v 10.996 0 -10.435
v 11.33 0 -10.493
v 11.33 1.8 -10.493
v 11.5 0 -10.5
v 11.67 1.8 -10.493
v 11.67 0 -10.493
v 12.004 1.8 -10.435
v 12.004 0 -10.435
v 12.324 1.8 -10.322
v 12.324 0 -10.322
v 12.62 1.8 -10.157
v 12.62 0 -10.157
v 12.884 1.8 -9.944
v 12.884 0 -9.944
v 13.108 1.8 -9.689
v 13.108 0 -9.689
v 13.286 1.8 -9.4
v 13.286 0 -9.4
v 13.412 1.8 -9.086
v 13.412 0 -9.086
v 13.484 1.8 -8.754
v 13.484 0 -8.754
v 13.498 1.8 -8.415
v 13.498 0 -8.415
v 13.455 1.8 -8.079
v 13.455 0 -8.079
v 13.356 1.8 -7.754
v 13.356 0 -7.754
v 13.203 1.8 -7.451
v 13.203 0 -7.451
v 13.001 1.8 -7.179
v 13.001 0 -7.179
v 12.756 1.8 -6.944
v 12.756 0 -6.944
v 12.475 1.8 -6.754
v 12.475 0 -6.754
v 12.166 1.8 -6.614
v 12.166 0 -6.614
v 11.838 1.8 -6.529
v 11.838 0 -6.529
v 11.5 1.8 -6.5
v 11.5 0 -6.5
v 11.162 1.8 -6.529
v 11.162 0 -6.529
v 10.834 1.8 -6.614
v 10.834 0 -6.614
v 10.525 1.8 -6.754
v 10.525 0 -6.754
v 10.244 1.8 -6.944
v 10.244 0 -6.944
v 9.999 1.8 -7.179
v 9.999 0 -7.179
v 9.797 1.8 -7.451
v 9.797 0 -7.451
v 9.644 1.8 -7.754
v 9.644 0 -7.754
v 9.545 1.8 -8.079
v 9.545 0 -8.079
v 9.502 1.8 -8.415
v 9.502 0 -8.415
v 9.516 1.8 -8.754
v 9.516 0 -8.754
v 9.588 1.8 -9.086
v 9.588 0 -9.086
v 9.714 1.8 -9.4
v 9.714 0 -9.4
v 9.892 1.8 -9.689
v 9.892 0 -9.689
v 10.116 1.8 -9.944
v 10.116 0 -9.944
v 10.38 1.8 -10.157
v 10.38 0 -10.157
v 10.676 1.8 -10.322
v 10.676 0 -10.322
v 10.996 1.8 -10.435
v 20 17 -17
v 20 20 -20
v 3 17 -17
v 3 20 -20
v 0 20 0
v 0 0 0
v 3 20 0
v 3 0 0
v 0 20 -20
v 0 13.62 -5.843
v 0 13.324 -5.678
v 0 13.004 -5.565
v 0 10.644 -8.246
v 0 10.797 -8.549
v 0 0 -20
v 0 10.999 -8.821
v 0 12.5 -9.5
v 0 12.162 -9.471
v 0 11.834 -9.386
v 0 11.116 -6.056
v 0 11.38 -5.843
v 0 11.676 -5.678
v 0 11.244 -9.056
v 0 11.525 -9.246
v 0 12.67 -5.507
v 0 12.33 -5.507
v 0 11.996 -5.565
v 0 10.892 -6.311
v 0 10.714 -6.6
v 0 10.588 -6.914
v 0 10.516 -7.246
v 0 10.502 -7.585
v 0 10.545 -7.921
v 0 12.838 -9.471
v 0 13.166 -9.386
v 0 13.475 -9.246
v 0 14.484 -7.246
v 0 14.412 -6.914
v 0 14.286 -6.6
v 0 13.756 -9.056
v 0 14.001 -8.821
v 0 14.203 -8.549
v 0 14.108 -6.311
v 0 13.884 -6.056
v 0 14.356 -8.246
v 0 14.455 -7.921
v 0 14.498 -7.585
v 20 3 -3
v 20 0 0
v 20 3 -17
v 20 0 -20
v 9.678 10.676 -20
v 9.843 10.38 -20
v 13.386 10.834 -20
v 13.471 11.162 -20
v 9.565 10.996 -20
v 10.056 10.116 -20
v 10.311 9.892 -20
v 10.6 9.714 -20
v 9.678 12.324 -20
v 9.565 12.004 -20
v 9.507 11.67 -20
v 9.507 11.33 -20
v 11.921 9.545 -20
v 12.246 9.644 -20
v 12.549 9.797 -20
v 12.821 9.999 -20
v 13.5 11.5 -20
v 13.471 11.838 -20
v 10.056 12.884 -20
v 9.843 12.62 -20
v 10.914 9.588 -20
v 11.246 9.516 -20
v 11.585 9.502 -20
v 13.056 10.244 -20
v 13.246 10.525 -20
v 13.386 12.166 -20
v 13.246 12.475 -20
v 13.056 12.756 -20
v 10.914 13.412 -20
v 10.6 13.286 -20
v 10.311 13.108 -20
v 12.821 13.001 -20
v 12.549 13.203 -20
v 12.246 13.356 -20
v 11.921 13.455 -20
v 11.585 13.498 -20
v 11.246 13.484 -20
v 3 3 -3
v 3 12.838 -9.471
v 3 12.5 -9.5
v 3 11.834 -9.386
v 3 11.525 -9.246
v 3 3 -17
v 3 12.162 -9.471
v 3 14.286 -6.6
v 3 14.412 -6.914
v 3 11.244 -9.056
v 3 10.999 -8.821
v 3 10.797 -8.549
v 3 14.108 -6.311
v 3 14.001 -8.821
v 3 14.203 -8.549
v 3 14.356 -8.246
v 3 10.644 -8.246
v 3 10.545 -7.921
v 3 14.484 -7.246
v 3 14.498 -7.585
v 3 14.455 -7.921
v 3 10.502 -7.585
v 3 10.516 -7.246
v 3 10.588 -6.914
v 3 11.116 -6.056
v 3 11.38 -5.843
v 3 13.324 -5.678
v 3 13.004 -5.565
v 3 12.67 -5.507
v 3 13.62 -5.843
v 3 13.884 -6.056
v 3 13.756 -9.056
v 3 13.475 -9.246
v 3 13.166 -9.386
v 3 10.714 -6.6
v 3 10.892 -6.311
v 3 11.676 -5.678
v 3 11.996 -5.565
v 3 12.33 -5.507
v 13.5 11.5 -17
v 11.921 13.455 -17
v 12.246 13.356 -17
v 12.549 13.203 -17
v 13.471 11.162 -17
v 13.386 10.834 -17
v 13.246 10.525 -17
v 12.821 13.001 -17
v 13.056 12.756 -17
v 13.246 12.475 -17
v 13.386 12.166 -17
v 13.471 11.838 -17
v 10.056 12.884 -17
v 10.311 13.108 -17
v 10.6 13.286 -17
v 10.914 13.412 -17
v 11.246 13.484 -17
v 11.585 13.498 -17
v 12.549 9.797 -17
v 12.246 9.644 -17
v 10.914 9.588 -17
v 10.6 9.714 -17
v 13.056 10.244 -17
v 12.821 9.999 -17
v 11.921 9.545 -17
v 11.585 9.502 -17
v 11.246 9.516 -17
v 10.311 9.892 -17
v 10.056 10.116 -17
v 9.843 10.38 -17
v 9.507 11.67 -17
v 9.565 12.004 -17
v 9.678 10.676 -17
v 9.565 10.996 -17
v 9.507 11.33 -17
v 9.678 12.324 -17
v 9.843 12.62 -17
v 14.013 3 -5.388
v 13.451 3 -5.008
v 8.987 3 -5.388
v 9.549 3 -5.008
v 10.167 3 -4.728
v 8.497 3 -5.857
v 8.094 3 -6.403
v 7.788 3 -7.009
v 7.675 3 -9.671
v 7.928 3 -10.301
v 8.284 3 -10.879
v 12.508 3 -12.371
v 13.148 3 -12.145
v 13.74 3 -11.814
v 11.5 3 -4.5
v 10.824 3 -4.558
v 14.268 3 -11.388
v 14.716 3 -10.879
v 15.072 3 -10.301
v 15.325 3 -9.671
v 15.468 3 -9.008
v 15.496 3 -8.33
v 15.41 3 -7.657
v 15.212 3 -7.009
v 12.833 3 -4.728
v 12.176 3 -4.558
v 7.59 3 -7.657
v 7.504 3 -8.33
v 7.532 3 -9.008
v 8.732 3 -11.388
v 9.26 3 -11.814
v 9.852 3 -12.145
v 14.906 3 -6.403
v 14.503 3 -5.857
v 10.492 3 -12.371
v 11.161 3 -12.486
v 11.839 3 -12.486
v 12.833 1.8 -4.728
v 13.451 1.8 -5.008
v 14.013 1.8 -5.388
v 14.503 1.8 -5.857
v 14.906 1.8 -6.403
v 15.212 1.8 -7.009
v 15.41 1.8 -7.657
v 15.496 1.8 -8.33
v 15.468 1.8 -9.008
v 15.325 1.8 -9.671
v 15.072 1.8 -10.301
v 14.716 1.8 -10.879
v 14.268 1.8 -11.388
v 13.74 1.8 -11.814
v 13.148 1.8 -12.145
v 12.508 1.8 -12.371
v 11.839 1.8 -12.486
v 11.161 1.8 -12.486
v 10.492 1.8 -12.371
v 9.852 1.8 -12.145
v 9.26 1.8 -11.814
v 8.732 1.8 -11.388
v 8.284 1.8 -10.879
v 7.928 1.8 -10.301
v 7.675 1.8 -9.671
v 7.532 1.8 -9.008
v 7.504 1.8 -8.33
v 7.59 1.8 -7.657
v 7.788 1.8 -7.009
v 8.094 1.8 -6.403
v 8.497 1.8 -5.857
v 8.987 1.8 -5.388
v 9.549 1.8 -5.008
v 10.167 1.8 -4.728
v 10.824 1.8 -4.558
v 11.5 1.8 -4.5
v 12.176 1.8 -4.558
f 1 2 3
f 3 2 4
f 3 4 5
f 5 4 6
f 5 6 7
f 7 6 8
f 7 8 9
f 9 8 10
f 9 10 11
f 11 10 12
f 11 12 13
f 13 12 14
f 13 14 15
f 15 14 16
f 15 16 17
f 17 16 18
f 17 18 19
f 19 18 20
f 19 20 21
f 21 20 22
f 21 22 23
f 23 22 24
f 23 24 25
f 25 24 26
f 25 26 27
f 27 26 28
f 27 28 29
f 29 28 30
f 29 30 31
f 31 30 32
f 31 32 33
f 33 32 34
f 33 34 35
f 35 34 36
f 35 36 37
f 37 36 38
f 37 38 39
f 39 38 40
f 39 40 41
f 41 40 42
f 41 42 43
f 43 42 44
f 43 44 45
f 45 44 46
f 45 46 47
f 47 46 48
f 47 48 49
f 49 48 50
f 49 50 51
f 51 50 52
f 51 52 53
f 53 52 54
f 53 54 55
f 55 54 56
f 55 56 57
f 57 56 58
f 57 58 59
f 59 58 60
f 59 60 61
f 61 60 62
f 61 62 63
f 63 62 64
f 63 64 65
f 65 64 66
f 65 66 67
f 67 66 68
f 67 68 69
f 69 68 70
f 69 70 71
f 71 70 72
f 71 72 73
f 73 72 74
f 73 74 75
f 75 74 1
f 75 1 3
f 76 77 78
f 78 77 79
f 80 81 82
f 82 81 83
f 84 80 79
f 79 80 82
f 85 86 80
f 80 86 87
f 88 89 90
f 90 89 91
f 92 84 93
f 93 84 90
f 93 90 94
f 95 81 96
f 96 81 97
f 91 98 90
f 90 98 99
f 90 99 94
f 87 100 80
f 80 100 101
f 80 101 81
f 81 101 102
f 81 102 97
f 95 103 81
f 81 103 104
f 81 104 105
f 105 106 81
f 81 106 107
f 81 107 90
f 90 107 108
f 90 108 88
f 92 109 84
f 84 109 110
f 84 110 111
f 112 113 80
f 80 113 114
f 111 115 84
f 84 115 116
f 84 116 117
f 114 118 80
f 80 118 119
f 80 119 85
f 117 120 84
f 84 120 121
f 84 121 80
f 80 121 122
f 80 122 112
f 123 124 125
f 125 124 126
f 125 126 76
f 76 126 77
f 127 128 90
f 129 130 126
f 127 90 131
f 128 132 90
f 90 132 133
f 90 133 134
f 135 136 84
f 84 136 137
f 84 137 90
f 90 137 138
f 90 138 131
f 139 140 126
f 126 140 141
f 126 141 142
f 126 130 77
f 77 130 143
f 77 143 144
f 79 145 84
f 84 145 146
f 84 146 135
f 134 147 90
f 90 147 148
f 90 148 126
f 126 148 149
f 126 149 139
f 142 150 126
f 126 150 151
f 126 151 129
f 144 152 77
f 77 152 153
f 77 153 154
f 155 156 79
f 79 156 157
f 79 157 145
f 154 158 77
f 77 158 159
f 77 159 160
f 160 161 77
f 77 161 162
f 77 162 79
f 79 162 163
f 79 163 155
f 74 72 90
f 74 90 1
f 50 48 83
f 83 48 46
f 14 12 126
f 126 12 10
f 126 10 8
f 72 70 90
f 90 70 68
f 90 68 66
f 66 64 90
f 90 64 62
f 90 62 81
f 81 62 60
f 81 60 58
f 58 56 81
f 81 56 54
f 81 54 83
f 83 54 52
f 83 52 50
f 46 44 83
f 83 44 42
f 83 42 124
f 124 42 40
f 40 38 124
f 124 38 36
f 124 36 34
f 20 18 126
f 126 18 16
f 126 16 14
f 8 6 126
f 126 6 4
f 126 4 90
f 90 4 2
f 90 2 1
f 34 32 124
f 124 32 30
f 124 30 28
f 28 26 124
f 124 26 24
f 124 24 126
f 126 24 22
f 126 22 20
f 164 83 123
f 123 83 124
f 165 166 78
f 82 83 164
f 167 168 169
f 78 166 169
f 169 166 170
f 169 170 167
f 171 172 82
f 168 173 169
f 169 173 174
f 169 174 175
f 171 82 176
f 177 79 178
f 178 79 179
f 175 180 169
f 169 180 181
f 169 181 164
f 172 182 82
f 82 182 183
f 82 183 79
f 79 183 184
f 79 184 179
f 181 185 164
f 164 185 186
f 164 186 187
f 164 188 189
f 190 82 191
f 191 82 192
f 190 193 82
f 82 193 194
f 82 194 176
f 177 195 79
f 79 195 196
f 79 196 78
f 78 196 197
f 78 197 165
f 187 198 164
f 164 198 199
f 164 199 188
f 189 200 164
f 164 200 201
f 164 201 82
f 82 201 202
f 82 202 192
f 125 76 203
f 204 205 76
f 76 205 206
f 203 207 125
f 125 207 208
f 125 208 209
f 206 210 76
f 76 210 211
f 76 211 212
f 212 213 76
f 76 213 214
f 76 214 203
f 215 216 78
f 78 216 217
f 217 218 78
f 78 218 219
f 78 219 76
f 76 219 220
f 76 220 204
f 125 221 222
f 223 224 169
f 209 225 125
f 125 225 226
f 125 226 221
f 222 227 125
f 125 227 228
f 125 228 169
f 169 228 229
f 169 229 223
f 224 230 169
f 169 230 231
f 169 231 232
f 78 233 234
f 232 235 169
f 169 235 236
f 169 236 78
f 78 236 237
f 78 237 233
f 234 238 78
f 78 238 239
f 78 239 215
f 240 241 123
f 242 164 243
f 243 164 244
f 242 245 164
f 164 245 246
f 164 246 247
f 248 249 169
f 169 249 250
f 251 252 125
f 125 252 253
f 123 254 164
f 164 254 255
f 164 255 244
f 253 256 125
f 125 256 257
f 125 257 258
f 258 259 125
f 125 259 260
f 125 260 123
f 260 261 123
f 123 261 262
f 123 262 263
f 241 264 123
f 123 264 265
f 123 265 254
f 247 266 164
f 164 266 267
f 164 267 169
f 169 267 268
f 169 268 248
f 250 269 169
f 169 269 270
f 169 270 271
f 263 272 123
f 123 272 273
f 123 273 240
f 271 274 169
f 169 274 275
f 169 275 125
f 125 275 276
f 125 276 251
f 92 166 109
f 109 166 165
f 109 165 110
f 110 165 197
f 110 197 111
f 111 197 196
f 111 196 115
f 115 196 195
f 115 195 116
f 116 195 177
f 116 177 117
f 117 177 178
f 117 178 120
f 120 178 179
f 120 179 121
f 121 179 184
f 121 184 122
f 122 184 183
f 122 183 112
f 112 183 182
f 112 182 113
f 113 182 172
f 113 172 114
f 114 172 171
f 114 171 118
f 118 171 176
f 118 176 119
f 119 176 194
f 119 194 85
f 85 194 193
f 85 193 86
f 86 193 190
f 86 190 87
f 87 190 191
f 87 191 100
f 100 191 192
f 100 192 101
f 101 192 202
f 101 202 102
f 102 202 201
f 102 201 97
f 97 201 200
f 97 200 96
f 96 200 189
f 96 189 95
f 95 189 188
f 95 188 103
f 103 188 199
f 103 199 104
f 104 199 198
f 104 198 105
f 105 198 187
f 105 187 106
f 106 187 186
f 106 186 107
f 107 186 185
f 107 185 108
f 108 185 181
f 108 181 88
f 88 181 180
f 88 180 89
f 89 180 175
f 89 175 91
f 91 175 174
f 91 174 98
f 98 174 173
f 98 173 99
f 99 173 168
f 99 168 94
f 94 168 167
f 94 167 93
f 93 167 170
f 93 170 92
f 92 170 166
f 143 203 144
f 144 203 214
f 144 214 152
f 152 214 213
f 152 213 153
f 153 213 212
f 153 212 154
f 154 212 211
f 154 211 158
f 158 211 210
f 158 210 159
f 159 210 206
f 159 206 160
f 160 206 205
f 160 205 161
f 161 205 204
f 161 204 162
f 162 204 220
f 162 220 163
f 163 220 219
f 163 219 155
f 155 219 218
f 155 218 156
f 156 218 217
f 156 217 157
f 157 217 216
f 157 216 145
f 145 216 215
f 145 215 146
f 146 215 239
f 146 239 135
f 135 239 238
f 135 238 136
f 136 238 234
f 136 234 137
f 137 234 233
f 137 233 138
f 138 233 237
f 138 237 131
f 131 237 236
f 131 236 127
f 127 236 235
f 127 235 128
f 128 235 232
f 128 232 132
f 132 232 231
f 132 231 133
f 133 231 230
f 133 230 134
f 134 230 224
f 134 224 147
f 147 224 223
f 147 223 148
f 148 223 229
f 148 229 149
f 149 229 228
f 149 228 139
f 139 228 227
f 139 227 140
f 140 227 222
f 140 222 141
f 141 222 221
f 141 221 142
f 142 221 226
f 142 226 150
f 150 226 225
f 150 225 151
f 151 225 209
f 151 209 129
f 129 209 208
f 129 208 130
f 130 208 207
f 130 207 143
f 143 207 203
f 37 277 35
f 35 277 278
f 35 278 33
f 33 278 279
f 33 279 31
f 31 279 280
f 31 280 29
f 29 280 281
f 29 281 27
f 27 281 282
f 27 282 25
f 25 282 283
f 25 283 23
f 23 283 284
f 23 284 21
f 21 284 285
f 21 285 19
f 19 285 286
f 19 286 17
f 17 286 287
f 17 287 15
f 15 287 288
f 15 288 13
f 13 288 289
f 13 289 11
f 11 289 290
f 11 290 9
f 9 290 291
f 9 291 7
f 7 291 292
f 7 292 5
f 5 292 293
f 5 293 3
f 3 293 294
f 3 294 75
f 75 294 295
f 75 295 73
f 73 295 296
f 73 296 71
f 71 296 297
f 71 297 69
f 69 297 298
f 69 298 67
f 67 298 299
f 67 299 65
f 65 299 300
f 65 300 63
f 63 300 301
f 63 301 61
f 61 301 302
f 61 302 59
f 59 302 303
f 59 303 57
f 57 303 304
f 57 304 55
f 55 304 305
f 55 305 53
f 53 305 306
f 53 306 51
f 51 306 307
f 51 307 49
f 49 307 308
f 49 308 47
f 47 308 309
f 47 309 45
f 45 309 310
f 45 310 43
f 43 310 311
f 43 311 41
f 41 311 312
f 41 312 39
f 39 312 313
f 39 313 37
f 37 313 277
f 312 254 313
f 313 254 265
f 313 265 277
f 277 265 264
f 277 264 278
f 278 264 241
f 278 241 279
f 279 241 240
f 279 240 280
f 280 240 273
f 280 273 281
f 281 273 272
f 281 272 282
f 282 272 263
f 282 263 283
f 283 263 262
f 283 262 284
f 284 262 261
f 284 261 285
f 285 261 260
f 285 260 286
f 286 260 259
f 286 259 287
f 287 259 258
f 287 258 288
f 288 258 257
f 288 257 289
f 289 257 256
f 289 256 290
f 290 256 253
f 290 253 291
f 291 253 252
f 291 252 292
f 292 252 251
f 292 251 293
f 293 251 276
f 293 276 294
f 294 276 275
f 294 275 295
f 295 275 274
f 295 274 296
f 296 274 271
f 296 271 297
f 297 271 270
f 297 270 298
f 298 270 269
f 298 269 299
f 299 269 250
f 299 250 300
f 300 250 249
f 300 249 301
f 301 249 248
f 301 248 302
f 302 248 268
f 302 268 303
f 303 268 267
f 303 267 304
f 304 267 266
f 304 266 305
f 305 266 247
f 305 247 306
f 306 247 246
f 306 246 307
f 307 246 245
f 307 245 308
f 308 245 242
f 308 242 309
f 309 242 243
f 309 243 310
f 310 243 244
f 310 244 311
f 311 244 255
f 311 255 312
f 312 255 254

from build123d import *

# Parameters (mm, degrees)
IZIM1_W                     = 20
IZIM1_H                     = 20
Y_KSEKLIK_EKSTR_ZYON1_DEPTH = 20
KES_EKSTR_ZYON1_DEPTH       = 17
IZIM3_W                     = 17.326301073
IZIM3_H                     = 17.919650739
KES_EKSTR_ZYON2_DEPTH       = 17
IZIM6_R                     = 2
KES_EKSTR_ZYON3_DEPTH       = 17
IZIM7_R                     = 2
KES_EKSTR_ZYON4_DEPTH       = 17
IZIM5_R                     = 2
KES_EKSTR_ZYON5_DEPTH       = 17
IZIM8_R                     = 4
KES_EKSTR_ZYON6_DEPTH       = 1.2


with BuildPart() as part:
    # Çizim1 → Yükseklik-Ekstrüzyon1 (new body)
    with BuildSketch(Plane(origin=(0, 0, 0), x_dir=(1, 0, 0), z_dir=(0, 1, 0))):
        with Locations((10, 10)):
            Rectangle(IZIM1_W, IZIM1_H)
    extrude(amount=Y_KSEKLIK_EKSTR_ZYON1_DEPTH)

    # Çizim2 → Kes-Ekstrüzyon1 (cut)
    with BuildSketch(Plane(origin=(20, 0, 0), x_dir=(0, 0, -1), z_dir=(1, 0, 0))):
        Polygon((20, 20), (0, 0), (0, 20), align=None)
    extrude(amount=-KES_EKSTR_ZYON1_DEPTH, mode=Mode.SUBTRACT)

    # Çizim3 → Kes-Ekstrüzyon2 (cut)
    with BuildSketch(Plane(origin=(20, 0, 0), x_dir=(0, 0, -1), z_dir=(1, 0, 0))):
        with Locations((8.336849464, 11.95982537)):
            Rectangle(IZIM3_W, IZIM3_H)
    extrude(amount=-KES_EKSTR_ZYON2_DEPTH, mode=Mode.SUBTRACT)

    # Çizim6 → Kes-Ekstrüzyon3 (cut)
    with BuildSketch(Plane(origin=(3, 0, 0), x_dir=(0, 0, -1), z_dir=(1, 0, 0))):
        with Locations((7.5, 12.5)):
            Circle(IZIM6_R)
    extrude(amount=-KES_EKSTR_ZYON3_DEPTH, mode=Mode.SUBTRACT)

    # Çizim7 → Kes-Ekstrüzyon4 (cut)
    with BuildSketch(Plane.XY.offset(-17)):
        with Locations((11.5, 11.5)):
            Circle(IZIM7_R)
    extrude(amount=-KES_EKSTR_ZYON4_DEPTH, mode=Mode.SUBTRACT)

    # Çizim5 → Kes-Ekstrüzyon5 (cut)
    with BuildSketch(Plane(origin=(0, 3, 0), x_dir=(1, 0, 0), z_dir=(0, 1, 0))):
        with Locations((11.5, 8.5)):
            Circle(IZIM5_R)
    extrude(amount=-KES_EKSTR_ZYON5_DEPTH, mode=Mode.SUBTRACT)

    # Çizim8 → Kes-Ekstrüzyon6 (cut)
    with BuildSketch(Plane(origin=(0, 3, 0), x_dir=(1, 0, 0), z_dir=(0, 1, 0))):
        with Locations((11.5, 8.5)):
            Circle(IZIM8_R)
    extrude(amount=-KES_EKSTR_ZYON6_DEPTH, mode=Mode.SUBTRACT)


solid = part.part
